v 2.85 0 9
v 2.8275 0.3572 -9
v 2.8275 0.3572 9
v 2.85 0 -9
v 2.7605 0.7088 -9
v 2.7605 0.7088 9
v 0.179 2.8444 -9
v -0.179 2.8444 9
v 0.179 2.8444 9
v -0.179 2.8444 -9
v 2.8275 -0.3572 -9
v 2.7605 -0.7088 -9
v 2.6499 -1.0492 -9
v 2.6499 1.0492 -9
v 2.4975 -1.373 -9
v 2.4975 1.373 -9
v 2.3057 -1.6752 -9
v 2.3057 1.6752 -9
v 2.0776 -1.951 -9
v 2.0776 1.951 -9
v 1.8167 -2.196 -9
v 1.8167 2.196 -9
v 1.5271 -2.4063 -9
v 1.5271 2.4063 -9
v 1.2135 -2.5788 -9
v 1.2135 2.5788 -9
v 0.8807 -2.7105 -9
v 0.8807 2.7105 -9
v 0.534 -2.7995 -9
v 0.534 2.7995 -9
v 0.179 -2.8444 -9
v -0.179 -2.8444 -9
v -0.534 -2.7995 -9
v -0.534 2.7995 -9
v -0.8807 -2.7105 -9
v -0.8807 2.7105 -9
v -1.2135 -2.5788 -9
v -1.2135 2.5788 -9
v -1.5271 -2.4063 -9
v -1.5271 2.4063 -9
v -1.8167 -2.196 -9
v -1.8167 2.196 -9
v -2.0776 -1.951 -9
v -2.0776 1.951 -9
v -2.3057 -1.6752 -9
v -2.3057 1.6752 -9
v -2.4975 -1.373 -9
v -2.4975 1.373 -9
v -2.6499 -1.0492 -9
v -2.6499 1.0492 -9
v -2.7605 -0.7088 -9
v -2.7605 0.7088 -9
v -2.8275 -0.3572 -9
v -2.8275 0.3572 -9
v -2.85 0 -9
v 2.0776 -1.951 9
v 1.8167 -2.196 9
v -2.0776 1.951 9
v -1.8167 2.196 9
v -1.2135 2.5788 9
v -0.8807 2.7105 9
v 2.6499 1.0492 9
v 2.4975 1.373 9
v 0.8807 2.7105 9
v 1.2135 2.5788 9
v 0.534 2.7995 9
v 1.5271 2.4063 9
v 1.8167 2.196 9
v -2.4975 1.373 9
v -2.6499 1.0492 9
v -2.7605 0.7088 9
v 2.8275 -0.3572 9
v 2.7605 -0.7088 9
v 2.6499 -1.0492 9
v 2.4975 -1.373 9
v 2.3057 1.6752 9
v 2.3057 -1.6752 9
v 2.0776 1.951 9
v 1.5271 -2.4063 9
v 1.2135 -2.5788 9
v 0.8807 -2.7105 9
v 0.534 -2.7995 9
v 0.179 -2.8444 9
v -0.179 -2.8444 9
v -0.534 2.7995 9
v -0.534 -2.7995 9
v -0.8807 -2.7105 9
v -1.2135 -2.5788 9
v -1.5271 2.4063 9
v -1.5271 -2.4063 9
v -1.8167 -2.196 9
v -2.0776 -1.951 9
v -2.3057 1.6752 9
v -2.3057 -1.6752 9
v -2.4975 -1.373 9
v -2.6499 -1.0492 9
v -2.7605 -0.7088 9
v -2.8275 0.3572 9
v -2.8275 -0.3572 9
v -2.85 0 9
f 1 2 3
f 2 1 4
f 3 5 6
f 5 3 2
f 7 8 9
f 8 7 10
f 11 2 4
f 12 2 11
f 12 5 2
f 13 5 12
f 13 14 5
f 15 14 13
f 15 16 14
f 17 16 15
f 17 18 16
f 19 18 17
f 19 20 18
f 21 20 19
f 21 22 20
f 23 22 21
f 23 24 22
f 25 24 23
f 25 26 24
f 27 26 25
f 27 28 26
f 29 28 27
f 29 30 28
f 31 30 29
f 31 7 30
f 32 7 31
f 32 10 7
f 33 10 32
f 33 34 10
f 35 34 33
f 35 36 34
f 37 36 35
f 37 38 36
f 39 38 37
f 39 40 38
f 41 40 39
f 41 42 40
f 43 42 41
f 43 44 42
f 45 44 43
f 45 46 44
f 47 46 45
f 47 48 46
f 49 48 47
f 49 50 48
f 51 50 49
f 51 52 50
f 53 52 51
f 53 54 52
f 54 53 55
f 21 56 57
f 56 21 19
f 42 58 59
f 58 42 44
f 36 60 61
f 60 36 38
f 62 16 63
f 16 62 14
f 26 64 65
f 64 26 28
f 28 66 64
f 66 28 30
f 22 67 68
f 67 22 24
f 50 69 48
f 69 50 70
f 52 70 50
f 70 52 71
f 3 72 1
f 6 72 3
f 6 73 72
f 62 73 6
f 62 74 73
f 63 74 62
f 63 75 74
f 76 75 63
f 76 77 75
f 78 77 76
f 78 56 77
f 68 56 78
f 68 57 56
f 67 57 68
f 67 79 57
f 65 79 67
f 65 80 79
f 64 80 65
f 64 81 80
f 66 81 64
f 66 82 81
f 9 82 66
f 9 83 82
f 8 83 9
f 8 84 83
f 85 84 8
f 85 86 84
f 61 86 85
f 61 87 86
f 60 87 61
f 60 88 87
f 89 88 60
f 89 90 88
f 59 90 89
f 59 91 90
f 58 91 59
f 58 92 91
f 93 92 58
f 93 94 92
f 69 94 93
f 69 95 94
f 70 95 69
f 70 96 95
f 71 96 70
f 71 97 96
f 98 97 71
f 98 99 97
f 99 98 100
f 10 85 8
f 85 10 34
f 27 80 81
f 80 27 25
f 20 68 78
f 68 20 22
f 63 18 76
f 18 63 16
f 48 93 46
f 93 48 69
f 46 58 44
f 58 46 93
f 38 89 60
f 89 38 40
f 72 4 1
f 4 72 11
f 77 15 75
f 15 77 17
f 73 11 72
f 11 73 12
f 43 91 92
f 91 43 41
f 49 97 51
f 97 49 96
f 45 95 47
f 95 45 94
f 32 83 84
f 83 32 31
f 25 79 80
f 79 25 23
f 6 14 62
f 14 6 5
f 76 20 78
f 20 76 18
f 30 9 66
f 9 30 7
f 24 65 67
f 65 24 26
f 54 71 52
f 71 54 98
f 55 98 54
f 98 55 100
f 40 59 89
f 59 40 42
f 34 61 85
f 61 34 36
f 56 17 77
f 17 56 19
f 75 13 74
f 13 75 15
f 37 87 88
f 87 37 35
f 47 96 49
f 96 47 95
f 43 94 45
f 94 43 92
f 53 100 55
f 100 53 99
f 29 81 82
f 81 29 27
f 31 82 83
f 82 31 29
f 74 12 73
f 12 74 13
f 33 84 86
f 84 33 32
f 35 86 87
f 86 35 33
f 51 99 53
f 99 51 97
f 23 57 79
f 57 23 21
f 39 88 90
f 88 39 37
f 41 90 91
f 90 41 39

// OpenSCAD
$fn = 50;


difference() {
	union() {
		translate(v = [0, 0, -9.0000000000]) {
			cylinder(h = 18, r = 2.8500000000);
		}
	}
	union() {
		translate(v = [0, 0, -100.0000000000]) {
			cylinder(h = 200, r = 0);
		}
	}
}
